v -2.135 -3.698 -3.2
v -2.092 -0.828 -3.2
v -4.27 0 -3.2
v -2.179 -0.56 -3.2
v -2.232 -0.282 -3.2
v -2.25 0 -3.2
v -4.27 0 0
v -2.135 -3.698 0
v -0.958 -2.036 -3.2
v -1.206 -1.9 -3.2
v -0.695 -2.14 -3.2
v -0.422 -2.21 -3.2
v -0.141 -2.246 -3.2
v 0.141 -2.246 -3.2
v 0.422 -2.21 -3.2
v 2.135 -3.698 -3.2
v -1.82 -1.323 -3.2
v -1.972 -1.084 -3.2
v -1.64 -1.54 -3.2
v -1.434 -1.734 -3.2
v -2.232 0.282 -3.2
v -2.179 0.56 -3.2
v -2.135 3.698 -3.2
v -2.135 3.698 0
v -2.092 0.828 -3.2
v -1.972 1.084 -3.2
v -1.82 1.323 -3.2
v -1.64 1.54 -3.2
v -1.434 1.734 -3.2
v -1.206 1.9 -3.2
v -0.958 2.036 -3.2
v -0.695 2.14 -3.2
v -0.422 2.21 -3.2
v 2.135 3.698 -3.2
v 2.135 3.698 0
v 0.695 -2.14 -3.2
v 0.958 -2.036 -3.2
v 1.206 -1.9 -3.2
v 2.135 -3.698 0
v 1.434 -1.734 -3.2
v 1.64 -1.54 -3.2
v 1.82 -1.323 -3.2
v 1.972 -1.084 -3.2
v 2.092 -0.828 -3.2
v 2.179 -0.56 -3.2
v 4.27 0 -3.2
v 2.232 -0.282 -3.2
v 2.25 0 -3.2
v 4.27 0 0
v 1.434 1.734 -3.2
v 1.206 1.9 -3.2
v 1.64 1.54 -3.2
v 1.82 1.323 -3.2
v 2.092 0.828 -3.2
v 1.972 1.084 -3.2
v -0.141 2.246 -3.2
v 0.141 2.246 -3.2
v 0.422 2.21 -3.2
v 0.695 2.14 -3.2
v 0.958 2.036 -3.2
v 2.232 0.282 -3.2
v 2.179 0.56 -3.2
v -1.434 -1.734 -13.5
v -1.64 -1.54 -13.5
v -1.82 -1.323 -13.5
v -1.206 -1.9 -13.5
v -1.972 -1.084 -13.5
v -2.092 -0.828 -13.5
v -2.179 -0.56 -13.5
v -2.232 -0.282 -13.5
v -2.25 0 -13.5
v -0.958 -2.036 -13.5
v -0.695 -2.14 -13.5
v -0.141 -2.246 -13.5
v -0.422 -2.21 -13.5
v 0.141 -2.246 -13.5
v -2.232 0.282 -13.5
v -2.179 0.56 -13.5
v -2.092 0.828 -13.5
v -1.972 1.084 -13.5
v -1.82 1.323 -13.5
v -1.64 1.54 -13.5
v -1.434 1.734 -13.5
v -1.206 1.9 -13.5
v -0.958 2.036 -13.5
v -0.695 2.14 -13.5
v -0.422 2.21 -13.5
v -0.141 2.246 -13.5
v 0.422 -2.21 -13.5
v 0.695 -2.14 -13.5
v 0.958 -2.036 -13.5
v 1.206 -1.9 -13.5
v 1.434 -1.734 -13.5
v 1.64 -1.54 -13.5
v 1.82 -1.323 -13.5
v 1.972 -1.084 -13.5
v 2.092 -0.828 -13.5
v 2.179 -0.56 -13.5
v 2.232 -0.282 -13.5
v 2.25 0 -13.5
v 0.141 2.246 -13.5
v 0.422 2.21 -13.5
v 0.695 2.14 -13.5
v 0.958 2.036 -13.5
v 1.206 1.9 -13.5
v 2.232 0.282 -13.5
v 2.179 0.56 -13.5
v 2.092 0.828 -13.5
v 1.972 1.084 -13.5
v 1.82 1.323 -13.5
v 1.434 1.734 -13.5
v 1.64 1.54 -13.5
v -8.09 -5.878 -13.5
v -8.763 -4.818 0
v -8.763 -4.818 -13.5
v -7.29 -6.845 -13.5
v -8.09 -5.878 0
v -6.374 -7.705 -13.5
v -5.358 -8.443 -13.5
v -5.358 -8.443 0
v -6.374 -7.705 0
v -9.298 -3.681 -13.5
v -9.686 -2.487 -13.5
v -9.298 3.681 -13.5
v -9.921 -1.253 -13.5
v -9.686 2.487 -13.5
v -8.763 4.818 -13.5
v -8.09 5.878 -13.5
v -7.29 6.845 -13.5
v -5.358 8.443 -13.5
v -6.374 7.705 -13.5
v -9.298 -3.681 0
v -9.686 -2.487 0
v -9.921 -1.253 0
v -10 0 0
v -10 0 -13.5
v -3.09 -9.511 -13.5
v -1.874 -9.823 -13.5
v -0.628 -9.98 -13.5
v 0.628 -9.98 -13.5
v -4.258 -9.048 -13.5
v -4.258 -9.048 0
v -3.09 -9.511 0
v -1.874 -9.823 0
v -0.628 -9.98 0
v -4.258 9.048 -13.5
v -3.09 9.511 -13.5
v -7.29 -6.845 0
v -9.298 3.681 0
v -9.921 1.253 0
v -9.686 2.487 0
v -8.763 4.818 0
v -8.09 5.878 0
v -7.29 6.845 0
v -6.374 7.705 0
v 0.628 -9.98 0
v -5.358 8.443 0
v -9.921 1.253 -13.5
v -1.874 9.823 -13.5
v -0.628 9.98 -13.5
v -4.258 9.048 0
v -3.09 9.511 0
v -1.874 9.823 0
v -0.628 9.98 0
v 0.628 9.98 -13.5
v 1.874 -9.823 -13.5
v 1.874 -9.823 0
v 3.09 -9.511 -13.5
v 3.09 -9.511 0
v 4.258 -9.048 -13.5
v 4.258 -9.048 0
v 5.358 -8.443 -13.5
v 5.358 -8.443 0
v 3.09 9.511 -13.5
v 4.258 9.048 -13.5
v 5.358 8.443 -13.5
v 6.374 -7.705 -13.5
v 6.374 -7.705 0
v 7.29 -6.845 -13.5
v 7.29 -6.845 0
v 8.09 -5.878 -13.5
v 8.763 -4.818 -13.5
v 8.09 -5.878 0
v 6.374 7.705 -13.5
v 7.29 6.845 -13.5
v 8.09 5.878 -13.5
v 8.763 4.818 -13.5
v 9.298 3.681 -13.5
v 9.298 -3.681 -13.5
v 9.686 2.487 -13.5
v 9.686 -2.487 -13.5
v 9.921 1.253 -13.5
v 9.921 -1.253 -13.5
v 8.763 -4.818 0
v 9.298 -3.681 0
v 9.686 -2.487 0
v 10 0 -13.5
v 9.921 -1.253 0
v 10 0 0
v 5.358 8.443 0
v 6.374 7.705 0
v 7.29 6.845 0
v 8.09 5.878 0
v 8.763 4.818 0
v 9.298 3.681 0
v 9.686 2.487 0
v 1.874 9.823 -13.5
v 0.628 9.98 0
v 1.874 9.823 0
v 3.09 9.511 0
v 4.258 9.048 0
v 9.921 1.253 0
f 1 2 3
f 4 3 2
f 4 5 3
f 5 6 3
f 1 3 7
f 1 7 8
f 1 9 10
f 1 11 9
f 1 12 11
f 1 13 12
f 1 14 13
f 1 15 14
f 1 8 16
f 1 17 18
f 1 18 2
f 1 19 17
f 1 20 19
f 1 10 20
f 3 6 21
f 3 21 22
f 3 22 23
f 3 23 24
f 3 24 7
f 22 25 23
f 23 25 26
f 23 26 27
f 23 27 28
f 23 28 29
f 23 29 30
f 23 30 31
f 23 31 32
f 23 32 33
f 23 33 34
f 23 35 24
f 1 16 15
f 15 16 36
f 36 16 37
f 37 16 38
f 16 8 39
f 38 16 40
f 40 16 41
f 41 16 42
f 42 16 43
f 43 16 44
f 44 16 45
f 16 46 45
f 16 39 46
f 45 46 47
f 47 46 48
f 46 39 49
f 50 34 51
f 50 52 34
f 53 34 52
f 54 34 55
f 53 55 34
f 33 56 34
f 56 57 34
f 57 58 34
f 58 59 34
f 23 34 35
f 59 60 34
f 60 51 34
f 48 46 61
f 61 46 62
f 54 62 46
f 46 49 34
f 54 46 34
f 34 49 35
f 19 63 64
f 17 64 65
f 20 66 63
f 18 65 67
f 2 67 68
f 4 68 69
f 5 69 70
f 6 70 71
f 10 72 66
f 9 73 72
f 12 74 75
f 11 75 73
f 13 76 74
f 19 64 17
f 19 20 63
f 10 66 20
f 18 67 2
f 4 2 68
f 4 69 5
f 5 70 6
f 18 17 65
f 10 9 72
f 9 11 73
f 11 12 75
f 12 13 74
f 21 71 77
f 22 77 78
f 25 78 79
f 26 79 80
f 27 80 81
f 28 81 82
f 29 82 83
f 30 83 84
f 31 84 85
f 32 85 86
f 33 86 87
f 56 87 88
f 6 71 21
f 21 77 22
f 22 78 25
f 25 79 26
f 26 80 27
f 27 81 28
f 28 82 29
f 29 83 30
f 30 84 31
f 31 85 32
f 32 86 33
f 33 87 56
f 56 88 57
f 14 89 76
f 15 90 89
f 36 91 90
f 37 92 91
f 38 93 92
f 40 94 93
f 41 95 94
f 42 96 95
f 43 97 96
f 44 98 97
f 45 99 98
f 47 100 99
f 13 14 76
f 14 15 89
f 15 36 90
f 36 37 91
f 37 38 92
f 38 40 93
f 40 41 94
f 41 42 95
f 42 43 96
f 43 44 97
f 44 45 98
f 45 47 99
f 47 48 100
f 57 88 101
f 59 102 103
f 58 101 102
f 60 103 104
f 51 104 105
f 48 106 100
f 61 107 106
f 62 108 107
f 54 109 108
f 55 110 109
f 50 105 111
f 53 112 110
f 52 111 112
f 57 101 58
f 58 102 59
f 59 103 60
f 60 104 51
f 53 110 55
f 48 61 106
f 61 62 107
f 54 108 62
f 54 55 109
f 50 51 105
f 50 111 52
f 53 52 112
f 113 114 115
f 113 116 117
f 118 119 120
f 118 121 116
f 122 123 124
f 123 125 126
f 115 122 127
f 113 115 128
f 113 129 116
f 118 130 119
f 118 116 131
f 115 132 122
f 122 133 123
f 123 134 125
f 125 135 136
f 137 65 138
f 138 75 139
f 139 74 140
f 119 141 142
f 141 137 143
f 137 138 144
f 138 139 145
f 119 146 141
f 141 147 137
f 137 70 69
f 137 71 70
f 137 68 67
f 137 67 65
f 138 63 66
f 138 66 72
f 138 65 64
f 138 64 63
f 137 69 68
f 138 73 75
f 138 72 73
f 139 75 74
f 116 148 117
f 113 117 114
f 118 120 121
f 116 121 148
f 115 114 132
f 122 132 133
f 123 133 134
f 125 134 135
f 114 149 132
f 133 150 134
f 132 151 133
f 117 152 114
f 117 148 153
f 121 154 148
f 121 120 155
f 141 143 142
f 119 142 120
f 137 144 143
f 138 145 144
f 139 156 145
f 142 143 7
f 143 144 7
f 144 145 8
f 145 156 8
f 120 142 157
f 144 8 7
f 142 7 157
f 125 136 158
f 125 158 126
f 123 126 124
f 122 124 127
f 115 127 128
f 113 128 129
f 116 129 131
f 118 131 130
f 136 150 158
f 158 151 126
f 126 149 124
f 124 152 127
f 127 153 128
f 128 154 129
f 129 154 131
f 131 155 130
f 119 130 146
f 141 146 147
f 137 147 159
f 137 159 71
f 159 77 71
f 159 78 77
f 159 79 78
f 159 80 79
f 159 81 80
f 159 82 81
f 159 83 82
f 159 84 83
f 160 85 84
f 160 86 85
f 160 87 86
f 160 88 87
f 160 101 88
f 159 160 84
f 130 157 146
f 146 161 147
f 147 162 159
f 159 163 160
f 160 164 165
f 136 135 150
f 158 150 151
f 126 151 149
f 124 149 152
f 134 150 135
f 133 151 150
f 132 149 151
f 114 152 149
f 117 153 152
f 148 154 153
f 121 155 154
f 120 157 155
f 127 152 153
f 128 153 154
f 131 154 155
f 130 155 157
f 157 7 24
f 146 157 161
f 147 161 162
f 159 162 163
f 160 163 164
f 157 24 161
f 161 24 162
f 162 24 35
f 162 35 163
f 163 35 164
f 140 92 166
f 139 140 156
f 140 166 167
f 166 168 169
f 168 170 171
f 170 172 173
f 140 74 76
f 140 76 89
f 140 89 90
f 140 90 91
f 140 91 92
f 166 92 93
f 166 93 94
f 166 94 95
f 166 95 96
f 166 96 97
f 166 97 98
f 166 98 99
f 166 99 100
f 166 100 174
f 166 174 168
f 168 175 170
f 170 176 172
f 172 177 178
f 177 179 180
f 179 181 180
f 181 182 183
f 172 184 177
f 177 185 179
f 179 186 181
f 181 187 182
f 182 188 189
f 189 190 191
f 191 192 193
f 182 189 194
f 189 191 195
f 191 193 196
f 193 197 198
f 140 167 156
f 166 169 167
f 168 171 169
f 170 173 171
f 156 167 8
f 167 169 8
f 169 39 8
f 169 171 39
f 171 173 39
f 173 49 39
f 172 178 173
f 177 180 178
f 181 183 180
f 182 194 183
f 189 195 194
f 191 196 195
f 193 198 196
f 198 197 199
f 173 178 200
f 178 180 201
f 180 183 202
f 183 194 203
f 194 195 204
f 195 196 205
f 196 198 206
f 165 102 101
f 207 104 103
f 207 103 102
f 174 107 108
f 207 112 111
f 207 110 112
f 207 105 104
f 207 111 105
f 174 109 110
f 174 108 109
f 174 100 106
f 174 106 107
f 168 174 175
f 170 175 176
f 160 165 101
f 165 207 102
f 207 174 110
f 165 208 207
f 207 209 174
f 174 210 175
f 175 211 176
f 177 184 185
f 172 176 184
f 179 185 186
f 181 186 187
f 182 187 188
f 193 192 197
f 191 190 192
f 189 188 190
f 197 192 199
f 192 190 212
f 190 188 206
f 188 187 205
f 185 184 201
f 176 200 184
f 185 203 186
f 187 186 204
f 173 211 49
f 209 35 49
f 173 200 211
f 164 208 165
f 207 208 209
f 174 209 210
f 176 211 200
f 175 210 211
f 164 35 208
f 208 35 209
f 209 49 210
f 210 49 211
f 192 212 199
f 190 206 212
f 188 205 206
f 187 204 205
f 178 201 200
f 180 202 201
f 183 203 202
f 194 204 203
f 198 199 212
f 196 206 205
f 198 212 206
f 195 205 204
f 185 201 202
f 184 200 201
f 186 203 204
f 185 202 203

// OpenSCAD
$fn = 50;

difference() {
	union() {
		translate(v = [0, 0, -13.5]) {
			cylinder(h = 13.5, r = 10.0);
		}
	}
	union() {
		translate(v = [0, 0, 0]) {
			rotate(a = [0, 0, 0]) {
				difference() {
					union() {
						translate(v = [0, 0, -3.2]) {
							linear_extrude(height = 3.2) {
								polygon(points = [[4.2698, 0.0], [2.1349000000000005, 3.697755269078796], [-2.134899999999999, 3.6977552690787965], [-4.2698, 5.228996902999369e-16], [-2.134900000000002, -3.6977552690787956], [2.1348999999999974, -3.697755269078798]]);
							}
						}
					}
					union();
				}
			}
		}
		#translate(v = [0, 0, -100.0]) {
			cylinder(h = 200, r = 2.25);
		}
	}
}
